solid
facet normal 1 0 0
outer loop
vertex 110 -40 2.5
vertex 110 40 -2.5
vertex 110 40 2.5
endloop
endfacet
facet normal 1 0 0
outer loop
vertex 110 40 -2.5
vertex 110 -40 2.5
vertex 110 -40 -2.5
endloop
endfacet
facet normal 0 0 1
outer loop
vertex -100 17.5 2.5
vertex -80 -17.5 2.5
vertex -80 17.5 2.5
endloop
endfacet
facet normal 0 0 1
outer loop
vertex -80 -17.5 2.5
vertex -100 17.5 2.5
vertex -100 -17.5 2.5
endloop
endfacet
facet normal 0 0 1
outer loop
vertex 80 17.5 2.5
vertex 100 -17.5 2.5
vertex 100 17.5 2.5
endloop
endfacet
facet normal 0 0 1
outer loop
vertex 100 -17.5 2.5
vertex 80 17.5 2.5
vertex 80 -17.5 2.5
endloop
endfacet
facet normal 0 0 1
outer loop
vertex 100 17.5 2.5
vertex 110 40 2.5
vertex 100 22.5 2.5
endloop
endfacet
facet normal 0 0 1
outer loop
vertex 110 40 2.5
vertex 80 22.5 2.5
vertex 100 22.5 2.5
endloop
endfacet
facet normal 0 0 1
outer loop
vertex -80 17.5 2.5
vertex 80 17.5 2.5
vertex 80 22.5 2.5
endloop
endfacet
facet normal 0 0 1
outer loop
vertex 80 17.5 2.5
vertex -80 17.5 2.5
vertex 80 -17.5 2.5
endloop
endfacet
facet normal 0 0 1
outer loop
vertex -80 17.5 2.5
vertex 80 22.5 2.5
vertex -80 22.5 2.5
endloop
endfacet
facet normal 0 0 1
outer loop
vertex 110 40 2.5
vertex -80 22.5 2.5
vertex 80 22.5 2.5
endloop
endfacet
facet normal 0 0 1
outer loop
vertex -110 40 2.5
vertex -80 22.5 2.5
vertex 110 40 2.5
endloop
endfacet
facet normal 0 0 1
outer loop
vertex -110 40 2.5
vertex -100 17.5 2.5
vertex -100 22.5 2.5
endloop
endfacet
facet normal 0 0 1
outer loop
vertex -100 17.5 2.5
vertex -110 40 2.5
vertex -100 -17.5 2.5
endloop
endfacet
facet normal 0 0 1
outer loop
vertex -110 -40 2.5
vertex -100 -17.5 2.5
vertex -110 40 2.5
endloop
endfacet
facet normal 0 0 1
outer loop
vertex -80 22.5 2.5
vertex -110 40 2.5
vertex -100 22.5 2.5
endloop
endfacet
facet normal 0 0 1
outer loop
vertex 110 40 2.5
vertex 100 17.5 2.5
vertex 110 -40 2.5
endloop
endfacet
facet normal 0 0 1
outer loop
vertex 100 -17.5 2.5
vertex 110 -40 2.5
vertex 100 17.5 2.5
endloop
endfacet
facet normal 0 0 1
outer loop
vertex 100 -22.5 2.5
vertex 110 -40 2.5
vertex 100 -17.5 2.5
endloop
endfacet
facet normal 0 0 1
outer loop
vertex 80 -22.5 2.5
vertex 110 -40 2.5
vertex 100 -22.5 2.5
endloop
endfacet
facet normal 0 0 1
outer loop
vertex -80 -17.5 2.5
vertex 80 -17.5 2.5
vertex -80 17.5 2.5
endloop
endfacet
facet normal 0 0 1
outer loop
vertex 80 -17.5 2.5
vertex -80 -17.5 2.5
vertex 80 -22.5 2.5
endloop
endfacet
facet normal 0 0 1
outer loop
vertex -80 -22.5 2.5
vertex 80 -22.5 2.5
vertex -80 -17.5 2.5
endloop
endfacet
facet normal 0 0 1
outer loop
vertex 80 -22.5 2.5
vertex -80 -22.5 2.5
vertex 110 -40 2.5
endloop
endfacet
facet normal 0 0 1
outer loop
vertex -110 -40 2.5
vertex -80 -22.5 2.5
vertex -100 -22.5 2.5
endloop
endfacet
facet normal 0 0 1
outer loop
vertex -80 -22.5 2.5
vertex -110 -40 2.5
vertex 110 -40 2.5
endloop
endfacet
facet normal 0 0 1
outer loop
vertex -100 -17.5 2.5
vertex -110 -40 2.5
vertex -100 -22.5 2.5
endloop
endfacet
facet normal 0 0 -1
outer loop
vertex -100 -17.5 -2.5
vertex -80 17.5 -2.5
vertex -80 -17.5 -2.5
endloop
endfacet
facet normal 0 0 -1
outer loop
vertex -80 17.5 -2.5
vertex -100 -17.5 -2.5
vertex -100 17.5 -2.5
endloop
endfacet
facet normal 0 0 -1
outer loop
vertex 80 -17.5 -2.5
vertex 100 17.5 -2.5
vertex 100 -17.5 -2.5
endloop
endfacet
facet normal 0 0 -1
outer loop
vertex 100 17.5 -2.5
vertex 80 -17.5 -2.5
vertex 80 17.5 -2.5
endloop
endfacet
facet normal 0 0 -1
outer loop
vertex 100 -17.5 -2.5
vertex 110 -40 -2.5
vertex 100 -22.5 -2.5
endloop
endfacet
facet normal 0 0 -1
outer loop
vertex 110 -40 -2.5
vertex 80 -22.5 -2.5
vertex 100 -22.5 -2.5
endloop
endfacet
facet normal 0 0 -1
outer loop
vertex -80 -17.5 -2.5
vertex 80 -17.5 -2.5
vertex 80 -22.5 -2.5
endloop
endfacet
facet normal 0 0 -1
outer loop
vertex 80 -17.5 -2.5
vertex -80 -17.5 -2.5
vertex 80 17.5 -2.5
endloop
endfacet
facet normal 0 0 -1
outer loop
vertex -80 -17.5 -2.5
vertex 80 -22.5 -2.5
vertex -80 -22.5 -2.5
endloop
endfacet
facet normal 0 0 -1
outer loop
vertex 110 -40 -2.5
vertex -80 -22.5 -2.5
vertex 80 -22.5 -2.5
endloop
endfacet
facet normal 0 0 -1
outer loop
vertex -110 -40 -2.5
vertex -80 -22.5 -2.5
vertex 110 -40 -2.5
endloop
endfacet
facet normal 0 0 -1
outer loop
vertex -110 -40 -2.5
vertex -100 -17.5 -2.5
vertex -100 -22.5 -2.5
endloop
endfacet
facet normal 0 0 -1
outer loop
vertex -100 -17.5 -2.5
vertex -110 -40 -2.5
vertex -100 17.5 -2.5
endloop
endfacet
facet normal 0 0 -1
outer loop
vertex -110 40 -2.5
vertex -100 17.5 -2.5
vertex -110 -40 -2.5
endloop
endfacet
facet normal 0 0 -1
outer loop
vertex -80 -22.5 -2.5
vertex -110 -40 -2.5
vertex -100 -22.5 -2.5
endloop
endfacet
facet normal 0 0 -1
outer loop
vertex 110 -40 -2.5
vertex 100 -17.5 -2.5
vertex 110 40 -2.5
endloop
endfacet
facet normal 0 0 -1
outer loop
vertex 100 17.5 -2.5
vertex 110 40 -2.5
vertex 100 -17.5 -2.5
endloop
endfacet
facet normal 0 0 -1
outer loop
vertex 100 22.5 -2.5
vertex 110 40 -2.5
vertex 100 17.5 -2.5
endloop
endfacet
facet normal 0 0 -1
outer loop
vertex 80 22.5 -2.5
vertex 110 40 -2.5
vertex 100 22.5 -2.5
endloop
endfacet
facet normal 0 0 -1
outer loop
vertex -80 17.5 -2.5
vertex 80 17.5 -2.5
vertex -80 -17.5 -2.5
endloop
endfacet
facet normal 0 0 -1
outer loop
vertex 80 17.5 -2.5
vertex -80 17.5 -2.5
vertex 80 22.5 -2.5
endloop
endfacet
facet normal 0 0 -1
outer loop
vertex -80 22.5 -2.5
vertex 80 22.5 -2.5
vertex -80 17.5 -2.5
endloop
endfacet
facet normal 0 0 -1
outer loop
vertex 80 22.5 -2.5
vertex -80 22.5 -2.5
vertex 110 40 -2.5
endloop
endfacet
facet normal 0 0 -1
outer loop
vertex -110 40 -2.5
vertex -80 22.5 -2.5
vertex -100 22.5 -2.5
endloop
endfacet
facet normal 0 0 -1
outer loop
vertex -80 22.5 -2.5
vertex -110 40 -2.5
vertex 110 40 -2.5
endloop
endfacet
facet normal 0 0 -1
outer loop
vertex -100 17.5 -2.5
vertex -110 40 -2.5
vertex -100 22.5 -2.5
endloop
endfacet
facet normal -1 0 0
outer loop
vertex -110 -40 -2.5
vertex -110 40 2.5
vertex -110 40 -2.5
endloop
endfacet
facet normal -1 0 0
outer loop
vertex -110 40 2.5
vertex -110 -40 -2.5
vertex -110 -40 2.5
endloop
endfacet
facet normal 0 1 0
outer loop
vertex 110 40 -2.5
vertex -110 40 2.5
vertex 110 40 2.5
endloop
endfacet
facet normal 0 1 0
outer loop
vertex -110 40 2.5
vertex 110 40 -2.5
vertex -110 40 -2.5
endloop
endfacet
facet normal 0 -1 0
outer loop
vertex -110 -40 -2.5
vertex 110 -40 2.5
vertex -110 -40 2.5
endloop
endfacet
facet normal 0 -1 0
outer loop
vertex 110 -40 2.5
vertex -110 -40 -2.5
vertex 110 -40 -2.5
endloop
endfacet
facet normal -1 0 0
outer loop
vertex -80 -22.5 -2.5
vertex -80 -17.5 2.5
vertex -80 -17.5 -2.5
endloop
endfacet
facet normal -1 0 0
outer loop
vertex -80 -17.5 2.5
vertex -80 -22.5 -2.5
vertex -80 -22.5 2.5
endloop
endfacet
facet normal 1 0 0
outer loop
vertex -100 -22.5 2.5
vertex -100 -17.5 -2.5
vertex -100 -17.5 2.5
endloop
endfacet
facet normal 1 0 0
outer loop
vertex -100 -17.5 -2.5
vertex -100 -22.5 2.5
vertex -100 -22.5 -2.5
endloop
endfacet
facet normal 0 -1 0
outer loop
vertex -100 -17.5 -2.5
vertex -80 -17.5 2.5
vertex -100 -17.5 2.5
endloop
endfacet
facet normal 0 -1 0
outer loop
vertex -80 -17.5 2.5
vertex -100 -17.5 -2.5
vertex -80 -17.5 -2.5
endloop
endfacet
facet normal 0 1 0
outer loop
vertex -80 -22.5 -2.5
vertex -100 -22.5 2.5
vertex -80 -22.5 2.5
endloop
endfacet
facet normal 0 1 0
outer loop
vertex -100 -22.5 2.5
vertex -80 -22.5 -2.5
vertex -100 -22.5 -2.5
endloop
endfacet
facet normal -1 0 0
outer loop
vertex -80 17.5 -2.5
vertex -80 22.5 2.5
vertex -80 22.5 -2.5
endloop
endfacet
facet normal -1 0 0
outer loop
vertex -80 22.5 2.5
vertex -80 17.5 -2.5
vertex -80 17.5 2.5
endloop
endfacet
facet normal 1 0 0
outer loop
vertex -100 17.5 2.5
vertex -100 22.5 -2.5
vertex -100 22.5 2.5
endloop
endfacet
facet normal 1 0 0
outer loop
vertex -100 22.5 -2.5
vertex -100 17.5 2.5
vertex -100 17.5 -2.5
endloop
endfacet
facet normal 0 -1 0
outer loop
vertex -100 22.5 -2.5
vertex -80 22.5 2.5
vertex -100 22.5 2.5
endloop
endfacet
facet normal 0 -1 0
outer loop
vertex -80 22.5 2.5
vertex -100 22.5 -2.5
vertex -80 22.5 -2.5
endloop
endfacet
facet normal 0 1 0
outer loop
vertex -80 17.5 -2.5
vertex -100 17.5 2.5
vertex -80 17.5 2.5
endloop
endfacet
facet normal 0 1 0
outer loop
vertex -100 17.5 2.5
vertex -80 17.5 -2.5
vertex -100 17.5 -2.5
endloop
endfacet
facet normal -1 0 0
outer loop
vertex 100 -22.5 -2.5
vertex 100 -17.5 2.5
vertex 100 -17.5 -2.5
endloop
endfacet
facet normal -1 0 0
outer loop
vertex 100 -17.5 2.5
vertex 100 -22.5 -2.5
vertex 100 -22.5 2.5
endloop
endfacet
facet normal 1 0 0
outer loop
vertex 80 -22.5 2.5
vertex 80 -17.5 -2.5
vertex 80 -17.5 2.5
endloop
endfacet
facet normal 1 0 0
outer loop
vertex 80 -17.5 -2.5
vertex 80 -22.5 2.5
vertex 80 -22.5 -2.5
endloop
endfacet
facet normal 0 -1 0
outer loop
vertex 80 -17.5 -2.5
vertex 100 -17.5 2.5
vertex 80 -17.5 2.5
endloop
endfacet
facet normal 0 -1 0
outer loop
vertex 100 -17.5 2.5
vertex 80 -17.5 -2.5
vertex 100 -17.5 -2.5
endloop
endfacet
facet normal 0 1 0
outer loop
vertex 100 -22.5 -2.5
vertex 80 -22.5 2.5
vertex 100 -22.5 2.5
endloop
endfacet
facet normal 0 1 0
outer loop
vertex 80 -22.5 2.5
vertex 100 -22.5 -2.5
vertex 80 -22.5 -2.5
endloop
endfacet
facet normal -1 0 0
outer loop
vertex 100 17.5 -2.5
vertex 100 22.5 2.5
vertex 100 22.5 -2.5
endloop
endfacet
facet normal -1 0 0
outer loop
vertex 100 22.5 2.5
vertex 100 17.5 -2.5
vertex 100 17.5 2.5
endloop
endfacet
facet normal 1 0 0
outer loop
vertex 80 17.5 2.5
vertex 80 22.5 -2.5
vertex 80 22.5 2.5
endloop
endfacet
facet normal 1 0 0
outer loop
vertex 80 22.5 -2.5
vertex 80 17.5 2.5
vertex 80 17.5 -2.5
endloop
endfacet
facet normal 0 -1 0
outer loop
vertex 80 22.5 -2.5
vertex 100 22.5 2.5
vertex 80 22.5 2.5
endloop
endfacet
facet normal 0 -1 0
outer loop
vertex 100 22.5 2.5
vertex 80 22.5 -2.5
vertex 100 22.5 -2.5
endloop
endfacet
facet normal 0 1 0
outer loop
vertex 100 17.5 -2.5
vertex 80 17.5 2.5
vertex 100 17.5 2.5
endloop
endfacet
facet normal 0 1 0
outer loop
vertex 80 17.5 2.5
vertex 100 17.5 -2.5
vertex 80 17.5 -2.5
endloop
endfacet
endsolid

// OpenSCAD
// ========================================
// a 220 x 80 x 5 mm plate with four 20 x 5 mm slots
// NeuroCAD canonical IR; dimensions are millimetres
// ========================================
$fn = 48;

difference() {
  cube(size=[220, 80, 5], center=true);
  translate([-90, -20, 0]) {
    cube(size=[20, 5, 7], center=true);
  }
  translate([-90, 20, 0]) {
    cube(size=[20, 5, 7], center=true);
  }
  translate([90, -20, 0]) {
    cube(size=[20, 5, 7], center=true);
  }
  translate([90, 20, 0]) {
    cube(size=[20, 5, 7], center=true);
  }
}
